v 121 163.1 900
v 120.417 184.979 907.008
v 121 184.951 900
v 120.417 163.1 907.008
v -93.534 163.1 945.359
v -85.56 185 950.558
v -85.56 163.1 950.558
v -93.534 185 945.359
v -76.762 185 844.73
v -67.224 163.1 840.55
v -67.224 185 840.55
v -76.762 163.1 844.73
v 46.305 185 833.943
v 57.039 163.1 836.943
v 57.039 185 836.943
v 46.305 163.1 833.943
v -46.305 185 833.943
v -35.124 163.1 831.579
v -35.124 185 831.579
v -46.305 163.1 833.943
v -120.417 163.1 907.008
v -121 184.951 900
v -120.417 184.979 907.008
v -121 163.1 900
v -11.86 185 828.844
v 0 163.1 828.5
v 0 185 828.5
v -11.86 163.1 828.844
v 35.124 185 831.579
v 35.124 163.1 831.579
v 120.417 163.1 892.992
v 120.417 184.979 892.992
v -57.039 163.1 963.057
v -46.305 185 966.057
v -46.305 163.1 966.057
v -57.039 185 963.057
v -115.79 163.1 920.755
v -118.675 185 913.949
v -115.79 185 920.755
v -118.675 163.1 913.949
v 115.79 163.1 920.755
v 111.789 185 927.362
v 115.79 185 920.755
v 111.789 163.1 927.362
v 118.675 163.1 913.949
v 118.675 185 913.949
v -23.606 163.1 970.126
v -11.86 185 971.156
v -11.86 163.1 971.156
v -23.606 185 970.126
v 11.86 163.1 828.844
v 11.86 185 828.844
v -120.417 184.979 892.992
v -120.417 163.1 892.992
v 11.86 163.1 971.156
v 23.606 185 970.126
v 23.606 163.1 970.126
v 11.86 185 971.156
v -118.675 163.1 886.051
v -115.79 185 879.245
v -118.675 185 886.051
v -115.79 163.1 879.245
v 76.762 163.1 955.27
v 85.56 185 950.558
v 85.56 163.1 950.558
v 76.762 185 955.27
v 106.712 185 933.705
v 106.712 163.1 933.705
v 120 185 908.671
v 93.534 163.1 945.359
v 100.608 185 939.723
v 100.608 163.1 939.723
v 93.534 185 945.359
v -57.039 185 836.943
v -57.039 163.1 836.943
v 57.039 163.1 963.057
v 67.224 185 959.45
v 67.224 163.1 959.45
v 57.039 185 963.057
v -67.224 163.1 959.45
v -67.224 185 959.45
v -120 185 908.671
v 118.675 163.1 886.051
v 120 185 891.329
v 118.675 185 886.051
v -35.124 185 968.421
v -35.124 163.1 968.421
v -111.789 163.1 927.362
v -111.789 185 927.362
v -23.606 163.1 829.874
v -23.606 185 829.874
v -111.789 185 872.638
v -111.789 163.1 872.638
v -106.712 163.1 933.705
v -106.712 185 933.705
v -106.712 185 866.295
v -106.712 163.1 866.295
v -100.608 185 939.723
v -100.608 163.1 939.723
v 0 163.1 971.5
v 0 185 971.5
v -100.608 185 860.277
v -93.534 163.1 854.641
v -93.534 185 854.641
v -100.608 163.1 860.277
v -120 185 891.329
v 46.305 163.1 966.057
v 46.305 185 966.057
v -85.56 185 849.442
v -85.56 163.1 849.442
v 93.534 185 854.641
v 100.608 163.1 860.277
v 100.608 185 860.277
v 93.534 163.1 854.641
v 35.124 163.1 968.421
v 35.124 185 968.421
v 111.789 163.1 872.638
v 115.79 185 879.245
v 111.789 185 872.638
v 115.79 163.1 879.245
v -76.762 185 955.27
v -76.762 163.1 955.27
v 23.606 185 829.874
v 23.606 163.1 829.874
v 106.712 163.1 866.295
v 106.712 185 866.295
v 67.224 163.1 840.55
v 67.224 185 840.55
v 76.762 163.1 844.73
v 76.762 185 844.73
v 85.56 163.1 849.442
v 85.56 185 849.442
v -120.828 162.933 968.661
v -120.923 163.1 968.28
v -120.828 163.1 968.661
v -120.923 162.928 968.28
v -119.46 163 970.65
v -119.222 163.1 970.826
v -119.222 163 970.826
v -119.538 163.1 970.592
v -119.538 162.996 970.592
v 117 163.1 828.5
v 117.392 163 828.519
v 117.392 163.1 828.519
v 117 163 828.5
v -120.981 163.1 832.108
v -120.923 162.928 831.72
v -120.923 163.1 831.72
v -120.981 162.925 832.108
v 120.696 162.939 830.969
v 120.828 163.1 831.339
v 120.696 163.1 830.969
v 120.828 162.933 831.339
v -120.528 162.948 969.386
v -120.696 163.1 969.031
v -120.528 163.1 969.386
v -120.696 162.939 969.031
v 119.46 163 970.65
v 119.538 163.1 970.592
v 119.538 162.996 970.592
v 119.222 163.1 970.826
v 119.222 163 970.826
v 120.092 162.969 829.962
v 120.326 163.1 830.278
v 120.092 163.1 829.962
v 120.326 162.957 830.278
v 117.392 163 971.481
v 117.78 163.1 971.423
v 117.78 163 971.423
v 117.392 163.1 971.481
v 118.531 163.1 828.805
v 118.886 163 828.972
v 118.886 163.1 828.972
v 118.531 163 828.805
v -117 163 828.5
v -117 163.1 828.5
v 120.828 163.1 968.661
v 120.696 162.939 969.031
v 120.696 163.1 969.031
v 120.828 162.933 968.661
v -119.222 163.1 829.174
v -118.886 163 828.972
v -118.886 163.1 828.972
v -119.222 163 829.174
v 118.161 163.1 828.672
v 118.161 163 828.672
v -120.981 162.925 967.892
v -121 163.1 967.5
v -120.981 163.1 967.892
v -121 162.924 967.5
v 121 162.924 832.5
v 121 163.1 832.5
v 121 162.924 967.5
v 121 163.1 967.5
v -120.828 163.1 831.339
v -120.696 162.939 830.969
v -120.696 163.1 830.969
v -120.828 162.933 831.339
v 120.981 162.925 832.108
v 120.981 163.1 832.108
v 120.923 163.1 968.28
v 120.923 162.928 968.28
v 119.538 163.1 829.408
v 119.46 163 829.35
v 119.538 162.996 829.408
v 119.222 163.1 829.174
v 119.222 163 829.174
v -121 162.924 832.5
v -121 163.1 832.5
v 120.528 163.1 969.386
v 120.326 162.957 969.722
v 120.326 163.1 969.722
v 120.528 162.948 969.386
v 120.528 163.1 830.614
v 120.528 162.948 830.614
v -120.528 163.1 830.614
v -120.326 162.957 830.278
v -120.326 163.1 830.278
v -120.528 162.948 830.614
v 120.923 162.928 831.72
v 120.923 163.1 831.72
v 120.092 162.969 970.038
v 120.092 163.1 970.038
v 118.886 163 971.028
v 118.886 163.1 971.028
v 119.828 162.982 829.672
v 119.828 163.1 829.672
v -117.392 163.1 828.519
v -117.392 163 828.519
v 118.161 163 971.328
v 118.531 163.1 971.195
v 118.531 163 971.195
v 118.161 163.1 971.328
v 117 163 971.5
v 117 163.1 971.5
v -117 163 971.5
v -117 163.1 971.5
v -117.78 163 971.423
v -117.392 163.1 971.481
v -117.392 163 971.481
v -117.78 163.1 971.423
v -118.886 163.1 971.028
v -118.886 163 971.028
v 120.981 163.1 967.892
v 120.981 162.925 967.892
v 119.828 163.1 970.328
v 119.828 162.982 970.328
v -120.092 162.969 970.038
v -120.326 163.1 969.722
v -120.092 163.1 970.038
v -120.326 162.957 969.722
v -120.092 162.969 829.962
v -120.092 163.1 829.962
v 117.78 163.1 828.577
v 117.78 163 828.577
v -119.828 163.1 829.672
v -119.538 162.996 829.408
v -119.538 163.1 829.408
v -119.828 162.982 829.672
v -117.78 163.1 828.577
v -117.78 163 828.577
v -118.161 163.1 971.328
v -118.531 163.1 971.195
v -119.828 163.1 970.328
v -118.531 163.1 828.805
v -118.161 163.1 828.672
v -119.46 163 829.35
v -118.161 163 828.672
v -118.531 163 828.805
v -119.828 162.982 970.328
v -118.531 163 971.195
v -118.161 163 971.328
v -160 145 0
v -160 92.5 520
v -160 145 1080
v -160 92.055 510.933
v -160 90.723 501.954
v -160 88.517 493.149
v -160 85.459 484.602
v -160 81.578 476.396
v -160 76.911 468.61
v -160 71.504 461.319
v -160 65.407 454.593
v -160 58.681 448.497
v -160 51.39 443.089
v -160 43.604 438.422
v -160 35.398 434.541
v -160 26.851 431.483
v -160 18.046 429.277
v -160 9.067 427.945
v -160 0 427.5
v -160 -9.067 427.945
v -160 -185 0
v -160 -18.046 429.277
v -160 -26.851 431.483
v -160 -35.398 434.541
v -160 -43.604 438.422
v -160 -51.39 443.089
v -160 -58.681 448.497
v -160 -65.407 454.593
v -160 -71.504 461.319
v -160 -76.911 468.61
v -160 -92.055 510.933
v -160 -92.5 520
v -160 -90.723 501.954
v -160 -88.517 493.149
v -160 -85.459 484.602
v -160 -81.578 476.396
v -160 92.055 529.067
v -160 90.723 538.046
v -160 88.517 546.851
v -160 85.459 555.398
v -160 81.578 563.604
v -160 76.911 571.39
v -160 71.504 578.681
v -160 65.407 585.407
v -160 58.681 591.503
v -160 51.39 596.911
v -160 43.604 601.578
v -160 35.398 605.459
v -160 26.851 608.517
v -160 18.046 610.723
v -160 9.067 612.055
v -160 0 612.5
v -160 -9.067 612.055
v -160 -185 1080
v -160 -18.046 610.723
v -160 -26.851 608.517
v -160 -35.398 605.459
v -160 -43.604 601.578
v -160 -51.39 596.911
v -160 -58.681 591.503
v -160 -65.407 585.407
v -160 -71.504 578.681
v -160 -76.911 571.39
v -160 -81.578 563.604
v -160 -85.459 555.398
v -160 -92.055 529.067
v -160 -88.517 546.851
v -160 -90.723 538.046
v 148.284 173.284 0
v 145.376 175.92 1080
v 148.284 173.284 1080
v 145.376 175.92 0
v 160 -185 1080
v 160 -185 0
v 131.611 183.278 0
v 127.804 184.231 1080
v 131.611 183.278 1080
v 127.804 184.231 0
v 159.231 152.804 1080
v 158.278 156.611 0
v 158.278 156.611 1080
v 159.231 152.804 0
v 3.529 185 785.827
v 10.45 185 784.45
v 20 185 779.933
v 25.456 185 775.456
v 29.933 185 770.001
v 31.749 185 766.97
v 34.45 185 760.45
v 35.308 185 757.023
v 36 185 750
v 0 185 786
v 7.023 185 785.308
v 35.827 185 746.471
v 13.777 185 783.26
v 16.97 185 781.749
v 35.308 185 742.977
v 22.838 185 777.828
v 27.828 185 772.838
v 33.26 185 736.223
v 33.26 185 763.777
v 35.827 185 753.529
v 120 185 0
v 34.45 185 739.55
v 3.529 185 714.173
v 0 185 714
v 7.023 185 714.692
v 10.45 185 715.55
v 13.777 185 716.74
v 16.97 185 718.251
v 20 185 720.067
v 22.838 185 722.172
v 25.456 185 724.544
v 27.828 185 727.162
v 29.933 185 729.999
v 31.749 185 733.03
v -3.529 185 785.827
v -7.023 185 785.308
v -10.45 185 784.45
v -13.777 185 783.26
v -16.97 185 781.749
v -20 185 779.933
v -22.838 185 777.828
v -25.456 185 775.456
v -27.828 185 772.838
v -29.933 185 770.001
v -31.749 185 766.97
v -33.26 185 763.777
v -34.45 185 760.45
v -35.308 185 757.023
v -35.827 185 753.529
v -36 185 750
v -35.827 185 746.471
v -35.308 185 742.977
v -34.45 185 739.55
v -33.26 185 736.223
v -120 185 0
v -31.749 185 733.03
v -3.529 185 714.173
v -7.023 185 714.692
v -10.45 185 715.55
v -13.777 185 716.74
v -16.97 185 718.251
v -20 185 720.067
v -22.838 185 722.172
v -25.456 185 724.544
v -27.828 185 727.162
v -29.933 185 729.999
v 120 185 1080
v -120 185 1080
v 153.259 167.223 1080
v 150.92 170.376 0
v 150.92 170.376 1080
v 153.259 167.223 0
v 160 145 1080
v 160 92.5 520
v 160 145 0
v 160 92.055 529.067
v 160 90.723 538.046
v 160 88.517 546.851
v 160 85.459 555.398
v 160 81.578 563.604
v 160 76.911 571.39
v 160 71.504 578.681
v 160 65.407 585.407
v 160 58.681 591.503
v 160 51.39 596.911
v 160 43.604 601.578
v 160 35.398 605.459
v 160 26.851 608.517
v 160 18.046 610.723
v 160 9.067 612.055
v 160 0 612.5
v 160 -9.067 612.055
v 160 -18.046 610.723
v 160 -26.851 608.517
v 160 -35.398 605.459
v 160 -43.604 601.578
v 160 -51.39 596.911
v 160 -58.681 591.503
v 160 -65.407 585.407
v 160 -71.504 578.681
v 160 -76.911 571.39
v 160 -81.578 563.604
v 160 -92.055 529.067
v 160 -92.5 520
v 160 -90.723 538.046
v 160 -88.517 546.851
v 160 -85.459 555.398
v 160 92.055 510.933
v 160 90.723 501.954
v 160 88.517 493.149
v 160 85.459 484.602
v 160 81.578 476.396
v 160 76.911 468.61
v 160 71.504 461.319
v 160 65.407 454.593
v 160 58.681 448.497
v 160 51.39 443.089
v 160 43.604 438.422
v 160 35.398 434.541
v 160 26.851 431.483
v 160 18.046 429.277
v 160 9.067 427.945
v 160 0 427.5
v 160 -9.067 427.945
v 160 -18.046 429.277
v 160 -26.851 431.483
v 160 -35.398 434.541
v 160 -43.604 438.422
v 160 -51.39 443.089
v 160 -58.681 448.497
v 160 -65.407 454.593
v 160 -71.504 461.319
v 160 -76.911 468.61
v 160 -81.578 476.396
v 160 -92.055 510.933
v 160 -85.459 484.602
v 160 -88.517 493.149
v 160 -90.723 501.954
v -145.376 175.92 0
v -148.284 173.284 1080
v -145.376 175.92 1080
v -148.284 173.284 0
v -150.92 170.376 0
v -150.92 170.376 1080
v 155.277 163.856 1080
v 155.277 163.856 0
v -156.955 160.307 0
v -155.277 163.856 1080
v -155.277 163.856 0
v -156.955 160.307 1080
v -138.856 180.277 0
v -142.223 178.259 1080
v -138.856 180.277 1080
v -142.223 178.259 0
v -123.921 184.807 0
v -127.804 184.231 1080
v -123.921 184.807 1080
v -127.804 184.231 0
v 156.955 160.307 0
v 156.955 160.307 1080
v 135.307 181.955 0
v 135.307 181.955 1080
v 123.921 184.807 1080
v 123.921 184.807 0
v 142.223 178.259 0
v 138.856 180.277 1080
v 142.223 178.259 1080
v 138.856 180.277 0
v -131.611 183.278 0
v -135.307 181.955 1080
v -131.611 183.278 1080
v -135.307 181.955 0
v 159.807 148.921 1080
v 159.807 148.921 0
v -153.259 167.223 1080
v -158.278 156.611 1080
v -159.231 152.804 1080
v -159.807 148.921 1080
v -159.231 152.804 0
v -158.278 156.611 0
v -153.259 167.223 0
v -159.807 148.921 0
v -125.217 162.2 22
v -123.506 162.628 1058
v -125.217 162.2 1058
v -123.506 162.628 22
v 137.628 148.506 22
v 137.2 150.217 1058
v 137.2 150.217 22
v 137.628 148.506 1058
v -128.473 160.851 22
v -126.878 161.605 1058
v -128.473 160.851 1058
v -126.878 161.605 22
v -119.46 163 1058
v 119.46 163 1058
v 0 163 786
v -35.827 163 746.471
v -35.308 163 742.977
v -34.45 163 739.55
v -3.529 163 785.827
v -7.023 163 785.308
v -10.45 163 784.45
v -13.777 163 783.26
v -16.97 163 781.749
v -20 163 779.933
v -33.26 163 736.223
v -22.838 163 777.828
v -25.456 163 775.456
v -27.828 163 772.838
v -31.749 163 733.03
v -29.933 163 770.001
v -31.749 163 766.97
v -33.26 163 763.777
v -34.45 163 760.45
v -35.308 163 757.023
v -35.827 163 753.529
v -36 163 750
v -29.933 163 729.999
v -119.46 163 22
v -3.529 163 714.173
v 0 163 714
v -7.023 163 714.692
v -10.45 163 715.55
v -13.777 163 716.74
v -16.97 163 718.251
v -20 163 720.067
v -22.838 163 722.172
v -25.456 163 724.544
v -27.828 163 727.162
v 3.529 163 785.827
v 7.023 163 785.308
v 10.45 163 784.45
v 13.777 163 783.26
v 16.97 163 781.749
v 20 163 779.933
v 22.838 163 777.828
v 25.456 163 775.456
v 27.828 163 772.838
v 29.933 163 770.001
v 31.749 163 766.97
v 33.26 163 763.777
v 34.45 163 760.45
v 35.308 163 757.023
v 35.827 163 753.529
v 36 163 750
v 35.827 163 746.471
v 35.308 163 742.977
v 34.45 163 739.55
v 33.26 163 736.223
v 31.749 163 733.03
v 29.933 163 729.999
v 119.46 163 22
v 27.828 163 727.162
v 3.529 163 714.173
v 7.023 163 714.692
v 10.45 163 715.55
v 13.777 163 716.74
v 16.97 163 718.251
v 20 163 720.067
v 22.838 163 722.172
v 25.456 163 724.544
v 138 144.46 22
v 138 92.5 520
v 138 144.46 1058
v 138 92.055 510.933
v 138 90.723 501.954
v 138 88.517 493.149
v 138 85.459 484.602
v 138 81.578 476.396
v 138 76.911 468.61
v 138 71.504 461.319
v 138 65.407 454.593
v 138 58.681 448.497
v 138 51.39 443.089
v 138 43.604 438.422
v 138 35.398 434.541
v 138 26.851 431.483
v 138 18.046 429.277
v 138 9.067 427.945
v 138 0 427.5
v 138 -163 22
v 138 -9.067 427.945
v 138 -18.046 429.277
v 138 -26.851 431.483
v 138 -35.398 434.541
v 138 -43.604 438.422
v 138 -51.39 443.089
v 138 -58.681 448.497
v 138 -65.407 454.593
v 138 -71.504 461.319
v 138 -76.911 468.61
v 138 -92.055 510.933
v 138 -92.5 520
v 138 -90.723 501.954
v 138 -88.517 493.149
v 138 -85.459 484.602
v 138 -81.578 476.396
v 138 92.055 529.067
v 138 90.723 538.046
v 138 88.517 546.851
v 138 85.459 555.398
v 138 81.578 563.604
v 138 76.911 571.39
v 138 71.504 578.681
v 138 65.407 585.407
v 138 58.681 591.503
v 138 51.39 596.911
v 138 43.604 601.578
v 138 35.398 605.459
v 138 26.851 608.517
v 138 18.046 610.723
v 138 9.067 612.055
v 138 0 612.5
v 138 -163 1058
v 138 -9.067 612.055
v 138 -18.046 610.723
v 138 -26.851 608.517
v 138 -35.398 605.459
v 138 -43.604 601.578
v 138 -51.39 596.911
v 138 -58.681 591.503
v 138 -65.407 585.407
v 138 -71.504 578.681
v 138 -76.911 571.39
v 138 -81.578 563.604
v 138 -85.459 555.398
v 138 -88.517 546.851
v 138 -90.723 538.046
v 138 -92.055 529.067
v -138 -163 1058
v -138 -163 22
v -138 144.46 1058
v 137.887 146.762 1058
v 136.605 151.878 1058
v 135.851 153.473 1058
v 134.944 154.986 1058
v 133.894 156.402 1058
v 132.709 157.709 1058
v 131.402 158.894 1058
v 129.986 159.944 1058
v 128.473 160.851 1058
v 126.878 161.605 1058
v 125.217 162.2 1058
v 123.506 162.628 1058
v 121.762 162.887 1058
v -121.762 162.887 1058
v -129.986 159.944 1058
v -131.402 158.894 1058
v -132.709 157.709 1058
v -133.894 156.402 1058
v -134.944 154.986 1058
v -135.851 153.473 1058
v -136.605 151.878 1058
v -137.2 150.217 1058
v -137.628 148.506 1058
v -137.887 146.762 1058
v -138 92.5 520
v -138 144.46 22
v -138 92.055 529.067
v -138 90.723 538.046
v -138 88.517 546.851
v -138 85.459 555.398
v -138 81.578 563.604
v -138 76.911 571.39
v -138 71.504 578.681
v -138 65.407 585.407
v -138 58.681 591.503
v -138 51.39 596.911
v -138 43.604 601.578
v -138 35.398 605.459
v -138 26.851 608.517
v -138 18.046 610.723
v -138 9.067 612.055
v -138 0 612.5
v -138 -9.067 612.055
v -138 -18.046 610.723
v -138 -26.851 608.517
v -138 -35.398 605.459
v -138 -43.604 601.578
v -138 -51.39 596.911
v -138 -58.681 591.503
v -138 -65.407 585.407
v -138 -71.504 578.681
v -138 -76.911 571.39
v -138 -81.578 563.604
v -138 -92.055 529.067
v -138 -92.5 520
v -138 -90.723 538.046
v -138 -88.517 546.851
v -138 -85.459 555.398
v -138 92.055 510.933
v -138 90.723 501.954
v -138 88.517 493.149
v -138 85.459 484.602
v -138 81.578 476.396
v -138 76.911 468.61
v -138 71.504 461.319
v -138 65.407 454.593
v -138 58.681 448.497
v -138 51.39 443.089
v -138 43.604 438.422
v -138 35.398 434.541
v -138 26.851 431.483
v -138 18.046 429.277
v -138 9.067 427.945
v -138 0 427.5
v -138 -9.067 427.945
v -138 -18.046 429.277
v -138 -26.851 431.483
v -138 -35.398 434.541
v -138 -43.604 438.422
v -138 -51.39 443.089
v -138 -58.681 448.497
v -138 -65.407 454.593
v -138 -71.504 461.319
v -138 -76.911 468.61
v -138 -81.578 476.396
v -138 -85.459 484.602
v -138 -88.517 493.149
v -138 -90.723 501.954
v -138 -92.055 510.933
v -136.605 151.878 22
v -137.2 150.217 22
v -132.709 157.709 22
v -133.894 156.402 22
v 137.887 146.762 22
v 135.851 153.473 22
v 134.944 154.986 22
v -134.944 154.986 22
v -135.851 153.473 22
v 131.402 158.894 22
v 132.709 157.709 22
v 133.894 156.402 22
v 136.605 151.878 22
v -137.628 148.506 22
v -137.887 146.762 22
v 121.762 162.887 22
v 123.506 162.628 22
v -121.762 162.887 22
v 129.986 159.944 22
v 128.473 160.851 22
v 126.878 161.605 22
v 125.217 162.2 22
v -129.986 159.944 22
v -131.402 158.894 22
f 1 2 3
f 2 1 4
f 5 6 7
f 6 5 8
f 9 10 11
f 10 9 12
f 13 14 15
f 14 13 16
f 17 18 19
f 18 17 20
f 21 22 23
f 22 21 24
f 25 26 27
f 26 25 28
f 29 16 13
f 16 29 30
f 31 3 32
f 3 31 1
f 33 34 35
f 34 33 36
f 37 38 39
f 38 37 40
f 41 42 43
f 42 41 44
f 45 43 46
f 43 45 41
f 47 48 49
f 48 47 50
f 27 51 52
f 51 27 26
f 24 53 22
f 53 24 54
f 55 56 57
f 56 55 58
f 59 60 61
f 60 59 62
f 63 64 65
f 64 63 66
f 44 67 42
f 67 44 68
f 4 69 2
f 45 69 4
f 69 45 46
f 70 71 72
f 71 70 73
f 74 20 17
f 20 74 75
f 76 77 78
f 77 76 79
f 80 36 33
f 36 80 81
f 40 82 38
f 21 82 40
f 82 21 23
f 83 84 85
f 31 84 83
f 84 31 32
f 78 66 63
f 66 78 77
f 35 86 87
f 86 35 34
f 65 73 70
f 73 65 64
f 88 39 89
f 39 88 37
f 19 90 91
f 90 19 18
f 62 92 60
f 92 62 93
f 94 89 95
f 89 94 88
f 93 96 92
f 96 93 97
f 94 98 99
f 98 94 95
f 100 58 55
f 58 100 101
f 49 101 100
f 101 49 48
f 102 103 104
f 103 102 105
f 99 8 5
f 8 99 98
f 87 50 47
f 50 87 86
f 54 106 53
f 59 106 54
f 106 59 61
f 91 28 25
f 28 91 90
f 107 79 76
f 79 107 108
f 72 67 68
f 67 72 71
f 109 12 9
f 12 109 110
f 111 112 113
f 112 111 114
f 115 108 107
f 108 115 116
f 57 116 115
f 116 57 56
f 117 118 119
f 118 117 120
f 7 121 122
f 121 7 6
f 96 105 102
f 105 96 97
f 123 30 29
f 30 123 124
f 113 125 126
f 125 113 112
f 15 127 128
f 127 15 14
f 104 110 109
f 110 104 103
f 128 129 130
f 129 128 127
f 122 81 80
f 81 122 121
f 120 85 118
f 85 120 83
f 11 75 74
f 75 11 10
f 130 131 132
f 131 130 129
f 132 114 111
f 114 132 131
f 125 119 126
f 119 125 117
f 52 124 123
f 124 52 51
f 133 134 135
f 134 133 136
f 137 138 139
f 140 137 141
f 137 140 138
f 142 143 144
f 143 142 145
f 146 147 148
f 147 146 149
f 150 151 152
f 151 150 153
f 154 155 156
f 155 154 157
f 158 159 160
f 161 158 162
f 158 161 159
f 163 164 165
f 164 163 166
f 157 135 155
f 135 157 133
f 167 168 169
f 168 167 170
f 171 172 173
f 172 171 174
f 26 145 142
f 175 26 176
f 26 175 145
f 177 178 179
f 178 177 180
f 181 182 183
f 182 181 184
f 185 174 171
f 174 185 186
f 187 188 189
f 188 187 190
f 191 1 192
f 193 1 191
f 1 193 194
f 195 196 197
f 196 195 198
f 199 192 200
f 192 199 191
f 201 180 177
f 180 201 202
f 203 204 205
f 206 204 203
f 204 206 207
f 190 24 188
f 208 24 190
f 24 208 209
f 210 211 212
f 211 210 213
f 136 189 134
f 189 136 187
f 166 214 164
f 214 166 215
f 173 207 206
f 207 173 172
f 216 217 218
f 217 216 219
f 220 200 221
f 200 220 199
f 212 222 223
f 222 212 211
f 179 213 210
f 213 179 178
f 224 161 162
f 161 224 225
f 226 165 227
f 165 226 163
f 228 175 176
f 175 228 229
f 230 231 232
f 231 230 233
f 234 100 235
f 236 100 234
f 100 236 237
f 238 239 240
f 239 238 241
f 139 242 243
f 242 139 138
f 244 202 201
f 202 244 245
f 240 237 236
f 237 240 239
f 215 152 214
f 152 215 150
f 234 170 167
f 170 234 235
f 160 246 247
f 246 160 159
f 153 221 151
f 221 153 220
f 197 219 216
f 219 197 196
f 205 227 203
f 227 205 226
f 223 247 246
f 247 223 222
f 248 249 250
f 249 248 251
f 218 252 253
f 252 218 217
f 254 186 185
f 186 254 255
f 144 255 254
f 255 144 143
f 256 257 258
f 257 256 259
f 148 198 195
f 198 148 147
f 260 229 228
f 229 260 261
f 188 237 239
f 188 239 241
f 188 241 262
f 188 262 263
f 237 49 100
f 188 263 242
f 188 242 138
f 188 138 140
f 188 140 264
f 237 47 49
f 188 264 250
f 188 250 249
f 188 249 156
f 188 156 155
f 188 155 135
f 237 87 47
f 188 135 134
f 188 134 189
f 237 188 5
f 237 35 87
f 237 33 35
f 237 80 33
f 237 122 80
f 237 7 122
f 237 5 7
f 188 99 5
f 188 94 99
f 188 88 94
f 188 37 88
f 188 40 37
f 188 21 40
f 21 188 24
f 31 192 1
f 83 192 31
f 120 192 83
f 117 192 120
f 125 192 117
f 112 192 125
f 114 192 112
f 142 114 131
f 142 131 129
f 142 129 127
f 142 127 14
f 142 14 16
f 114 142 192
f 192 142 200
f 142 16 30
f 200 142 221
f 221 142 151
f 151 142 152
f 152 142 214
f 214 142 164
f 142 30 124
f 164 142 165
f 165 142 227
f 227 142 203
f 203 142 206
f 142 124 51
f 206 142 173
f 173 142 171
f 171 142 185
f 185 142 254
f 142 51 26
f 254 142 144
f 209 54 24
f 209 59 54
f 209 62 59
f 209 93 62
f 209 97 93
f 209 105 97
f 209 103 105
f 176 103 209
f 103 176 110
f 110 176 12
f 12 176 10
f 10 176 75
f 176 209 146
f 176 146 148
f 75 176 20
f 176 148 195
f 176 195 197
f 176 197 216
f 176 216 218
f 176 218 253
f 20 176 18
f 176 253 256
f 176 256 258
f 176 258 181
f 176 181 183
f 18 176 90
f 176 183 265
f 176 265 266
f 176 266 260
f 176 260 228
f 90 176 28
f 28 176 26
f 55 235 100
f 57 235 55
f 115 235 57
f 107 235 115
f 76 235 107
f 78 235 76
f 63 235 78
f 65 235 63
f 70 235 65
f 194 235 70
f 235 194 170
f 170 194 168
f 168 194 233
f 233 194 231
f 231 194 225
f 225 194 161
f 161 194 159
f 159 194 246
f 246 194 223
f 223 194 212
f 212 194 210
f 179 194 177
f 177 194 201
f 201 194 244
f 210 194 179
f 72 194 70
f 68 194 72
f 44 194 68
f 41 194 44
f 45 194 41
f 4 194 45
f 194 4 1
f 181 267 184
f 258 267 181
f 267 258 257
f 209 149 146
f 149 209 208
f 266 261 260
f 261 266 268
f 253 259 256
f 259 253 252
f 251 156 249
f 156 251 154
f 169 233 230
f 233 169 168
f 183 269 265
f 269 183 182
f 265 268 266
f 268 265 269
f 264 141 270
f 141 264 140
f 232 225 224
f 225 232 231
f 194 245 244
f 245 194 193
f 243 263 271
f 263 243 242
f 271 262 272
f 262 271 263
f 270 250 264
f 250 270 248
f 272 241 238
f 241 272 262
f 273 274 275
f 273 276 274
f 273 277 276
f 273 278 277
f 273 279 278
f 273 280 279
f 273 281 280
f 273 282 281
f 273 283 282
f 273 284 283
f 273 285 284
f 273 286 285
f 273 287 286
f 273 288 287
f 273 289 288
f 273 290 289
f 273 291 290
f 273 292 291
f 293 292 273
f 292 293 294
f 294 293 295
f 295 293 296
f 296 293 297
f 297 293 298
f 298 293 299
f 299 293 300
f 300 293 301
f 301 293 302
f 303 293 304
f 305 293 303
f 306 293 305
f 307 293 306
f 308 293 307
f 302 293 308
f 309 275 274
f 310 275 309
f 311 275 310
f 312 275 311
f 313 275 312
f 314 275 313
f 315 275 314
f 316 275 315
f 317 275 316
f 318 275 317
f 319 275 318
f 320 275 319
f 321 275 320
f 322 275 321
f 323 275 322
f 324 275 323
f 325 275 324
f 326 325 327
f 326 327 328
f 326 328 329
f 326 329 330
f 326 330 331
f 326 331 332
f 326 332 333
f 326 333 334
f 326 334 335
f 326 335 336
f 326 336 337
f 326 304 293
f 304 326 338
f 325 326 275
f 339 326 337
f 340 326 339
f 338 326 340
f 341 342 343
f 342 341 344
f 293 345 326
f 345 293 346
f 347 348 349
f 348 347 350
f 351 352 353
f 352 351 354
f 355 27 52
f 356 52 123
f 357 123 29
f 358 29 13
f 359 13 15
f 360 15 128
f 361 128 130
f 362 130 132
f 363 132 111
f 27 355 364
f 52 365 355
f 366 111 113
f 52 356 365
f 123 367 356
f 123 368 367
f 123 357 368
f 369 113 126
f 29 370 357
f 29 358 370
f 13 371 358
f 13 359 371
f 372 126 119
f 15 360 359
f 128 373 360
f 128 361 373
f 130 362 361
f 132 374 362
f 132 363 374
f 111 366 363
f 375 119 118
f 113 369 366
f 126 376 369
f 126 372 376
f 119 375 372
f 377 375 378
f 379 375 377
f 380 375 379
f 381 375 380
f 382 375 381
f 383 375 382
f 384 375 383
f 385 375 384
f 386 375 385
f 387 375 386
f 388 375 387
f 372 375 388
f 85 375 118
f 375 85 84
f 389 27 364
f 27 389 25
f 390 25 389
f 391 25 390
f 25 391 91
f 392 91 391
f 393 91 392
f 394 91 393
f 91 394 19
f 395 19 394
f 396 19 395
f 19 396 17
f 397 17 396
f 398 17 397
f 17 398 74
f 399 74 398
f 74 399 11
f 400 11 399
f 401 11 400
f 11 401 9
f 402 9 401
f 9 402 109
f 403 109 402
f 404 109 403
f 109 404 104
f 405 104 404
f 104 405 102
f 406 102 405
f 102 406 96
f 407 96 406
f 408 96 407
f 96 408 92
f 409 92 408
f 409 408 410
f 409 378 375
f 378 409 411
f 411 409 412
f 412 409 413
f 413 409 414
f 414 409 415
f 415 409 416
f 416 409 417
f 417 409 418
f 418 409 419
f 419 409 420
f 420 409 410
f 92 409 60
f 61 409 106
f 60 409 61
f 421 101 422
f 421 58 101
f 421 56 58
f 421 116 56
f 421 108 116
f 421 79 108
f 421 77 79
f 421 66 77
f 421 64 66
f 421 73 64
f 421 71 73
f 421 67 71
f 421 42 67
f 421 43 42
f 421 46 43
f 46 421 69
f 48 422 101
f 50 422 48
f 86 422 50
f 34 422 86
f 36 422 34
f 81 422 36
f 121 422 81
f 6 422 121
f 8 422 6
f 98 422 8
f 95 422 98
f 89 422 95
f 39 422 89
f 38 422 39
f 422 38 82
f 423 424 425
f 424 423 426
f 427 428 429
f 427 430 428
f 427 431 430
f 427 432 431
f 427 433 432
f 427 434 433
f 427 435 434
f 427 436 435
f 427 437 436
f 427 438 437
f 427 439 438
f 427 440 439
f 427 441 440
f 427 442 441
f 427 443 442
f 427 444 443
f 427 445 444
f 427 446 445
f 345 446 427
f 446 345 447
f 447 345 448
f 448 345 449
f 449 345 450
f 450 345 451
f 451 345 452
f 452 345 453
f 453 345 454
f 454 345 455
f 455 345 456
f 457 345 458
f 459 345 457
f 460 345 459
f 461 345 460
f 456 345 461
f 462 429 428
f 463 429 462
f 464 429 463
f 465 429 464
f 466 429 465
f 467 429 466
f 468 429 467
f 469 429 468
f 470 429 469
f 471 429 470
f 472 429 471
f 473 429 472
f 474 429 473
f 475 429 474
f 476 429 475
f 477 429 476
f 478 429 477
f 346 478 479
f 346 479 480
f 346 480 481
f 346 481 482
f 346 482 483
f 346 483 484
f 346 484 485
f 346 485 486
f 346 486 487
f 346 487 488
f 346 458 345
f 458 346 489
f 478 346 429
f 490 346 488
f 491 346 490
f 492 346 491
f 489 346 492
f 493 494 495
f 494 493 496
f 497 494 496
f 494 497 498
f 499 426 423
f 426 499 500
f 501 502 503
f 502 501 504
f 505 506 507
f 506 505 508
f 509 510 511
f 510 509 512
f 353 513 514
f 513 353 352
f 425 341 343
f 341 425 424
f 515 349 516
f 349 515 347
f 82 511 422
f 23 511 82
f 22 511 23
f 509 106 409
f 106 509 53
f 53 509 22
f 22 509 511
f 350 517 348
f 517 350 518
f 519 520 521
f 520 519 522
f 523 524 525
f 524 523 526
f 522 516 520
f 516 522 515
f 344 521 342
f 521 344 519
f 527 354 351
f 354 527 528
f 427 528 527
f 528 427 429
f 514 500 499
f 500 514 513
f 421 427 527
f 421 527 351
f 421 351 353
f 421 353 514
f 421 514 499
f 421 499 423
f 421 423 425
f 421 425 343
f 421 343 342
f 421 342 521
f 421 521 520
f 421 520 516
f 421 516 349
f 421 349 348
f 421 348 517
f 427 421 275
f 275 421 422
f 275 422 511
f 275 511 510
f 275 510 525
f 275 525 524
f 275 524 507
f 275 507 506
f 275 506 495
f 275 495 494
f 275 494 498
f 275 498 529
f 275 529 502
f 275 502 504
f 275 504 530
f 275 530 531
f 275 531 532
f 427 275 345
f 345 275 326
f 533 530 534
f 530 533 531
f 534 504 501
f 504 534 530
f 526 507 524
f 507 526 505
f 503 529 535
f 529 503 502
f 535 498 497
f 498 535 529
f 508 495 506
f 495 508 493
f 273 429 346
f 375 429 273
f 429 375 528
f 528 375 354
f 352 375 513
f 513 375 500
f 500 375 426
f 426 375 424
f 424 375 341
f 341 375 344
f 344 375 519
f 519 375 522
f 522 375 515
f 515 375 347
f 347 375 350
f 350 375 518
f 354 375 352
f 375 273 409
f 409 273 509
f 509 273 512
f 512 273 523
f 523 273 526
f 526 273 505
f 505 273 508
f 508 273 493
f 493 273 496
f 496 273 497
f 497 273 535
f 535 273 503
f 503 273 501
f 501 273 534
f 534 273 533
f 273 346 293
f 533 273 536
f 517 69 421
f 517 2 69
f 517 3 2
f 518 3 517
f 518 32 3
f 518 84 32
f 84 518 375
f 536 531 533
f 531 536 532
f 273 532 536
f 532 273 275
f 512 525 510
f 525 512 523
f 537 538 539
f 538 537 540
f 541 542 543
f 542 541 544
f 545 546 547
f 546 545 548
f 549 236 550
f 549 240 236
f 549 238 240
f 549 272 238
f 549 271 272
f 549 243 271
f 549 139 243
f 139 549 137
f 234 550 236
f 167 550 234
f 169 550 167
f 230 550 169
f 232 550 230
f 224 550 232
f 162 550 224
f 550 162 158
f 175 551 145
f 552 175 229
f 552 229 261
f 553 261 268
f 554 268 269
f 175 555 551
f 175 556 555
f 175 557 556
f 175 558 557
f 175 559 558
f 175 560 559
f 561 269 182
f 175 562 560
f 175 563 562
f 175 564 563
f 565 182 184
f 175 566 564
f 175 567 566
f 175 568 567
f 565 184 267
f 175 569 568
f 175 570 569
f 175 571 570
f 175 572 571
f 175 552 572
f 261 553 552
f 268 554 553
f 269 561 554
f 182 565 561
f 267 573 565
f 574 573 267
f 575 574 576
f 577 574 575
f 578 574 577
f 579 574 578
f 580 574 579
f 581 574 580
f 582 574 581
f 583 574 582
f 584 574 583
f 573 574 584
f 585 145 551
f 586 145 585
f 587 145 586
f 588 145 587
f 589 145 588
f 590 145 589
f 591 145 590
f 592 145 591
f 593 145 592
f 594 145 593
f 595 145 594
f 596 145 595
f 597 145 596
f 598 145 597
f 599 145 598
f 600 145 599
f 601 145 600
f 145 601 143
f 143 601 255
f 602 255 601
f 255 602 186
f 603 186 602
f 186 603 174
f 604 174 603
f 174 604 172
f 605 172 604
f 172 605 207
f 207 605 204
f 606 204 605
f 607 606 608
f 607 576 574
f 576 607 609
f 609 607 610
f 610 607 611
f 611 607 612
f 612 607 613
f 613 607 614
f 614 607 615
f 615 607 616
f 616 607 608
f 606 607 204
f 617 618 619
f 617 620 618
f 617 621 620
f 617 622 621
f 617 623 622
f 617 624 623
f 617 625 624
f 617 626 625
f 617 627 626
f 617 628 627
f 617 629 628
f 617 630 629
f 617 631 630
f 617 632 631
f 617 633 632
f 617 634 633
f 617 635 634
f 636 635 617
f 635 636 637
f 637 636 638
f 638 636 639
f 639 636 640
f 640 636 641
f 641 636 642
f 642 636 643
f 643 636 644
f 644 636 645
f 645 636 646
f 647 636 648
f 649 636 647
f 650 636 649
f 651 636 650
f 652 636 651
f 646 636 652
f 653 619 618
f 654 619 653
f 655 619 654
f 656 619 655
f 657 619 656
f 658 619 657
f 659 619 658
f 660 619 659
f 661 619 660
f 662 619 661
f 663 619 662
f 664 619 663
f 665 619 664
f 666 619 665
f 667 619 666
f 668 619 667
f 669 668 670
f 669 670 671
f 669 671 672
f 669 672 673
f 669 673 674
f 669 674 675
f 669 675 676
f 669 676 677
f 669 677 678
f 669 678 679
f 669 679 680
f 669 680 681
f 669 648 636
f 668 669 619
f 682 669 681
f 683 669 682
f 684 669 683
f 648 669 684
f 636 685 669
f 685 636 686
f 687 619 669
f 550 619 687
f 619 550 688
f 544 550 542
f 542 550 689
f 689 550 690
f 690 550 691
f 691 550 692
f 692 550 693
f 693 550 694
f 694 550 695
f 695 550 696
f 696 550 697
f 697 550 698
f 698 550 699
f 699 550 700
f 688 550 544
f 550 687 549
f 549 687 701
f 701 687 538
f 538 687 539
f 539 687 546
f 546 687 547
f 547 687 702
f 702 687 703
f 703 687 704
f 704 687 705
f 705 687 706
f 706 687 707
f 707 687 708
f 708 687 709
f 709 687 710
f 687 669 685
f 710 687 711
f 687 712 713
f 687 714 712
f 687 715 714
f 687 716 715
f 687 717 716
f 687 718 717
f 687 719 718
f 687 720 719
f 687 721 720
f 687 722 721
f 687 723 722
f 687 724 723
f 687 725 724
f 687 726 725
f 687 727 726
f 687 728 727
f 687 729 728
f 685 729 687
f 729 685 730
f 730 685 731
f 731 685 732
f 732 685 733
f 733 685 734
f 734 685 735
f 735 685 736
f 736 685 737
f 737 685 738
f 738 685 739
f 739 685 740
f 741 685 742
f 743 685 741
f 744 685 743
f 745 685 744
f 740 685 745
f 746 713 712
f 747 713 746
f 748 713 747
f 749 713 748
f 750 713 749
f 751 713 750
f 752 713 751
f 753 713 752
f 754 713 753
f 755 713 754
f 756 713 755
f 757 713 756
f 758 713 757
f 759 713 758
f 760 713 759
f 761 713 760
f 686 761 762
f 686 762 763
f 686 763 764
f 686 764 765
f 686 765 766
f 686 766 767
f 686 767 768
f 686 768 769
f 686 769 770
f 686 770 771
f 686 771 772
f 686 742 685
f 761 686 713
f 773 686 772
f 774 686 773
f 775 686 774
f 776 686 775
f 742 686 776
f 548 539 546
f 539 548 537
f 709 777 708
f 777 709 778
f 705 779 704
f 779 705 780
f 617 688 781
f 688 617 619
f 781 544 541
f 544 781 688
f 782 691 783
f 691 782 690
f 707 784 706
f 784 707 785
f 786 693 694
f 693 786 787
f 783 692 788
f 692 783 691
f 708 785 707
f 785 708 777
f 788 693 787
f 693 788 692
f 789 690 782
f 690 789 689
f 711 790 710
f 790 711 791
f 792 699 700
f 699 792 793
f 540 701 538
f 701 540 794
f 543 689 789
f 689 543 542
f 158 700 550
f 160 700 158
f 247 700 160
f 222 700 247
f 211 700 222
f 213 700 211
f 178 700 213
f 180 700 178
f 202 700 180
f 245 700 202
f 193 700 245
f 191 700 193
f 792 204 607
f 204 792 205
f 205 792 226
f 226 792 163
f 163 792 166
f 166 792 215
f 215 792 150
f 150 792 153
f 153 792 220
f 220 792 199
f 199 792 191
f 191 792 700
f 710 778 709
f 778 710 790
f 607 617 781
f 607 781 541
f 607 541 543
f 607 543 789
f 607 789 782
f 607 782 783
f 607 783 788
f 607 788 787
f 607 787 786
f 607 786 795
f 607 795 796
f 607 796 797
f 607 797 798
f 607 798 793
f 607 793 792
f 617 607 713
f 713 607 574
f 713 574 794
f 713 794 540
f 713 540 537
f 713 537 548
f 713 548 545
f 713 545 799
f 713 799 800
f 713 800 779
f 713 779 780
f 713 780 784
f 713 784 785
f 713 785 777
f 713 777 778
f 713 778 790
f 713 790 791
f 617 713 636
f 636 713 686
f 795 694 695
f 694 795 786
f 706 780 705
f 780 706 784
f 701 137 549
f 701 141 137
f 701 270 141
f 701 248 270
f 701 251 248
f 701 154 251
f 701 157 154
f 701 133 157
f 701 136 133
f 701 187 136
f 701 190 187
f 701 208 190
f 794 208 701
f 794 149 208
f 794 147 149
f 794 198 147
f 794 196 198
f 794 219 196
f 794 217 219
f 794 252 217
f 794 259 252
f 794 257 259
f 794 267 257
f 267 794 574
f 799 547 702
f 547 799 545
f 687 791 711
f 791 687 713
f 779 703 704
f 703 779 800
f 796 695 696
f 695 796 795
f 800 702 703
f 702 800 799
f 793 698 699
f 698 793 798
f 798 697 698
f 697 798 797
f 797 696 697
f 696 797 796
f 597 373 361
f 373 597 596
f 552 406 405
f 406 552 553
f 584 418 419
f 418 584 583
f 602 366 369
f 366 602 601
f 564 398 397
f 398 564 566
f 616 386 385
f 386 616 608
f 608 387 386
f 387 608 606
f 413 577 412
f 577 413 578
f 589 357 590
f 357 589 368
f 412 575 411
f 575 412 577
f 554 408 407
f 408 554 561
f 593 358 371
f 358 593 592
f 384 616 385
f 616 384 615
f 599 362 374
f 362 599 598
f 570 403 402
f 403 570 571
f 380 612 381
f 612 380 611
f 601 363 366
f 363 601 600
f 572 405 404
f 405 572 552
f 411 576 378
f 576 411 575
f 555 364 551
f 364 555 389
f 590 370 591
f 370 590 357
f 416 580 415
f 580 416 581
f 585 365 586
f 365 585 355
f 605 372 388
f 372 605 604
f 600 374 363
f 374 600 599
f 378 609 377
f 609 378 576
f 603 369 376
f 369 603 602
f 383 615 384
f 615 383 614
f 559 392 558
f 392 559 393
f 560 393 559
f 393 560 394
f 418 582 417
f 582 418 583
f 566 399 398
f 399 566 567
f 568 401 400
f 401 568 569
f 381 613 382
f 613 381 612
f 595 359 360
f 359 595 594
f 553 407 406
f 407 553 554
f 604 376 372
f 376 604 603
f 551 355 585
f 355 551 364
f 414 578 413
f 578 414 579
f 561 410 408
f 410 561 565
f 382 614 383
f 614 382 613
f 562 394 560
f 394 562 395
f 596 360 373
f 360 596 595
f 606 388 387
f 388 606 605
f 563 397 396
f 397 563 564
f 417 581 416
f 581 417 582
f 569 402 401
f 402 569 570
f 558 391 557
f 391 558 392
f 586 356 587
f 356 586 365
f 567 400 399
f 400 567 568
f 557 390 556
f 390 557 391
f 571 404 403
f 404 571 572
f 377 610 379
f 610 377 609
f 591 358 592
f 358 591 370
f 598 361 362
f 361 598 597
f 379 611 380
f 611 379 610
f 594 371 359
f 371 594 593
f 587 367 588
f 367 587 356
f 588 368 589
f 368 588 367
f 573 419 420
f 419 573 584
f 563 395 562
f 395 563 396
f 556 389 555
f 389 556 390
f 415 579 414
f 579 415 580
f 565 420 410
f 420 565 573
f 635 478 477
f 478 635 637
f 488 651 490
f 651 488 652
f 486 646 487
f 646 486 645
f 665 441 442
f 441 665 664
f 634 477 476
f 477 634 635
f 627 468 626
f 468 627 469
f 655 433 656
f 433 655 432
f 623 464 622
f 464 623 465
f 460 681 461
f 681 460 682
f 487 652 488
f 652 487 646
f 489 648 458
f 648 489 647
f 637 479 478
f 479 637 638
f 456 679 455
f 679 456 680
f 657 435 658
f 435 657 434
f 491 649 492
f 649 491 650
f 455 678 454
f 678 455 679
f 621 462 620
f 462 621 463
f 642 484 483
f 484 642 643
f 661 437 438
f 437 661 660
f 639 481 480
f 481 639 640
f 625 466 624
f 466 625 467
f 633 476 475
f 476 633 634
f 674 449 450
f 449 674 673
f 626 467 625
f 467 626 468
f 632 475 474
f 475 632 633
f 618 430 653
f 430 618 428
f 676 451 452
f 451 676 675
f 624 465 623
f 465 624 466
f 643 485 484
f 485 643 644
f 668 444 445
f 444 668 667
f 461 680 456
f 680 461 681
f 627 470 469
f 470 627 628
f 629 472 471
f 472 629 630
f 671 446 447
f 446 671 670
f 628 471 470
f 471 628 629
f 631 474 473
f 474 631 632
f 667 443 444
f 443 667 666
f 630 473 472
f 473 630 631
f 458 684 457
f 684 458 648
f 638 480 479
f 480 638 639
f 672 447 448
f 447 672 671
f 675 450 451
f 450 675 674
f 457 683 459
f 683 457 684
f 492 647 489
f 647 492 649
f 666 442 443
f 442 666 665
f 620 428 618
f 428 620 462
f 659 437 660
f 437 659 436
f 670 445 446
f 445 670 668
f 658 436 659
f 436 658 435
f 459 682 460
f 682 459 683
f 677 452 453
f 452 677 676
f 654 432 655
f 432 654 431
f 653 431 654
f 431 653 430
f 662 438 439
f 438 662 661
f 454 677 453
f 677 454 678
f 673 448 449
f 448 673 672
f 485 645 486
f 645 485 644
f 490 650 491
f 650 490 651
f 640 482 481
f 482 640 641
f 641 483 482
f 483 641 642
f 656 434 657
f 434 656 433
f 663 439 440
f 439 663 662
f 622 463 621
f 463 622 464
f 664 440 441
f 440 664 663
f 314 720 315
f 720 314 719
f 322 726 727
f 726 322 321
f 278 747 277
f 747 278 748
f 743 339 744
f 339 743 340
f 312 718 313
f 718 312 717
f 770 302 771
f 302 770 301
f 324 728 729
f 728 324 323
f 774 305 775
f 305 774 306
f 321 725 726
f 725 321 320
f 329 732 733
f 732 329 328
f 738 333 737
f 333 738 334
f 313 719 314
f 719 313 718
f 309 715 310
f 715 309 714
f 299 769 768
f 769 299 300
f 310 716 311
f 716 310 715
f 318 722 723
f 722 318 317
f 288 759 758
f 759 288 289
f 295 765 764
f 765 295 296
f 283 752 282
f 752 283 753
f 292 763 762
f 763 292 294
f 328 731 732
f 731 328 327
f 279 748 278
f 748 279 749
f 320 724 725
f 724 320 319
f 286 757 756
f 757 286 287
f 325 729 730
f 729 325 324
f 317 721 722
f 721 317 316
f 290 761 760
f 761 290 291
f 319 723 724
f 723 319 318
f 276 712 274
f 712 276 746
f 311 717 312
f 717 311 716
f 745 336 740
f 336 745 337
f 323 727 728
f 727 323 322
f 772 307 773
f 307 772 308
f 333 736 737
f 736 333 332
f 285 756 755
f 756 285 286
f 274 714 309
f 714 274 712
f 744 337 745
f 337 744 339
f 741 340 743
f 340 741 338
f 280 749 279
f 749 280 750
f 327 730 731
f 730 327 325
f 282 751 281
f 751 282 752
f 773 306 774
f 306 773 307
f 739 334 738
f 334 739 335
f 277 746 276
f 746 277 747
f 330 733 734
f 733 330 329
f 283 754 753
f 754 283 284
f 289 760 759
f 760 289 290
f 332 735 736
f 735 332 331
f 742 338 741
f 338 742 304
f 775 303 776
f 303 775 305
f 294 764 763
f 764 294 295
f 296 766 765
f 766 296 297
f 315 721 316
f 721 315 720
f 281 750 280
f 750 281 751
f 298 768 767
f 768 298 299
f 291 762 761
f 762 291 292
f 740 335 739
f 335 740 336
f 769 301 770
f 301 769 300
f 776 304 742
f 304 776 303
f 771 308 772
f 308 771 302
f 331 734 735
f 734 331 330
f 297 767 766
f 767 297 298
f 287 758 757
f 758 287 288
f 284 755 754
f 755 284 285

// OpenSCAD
// =====================================================================
// Mk2 Reference Loudspeaker - cabinet (parametric, simulation-stage)
// =====================================================================
//
// v6b enclosure: 300 x 370 x 1080 mm, 22 mm birch ply, R50 front vertical
// roundovers, side-mounted push-push woofers opposed at the same height, sealed
// midrange chamber, WG212 + 15W on the front baffle at ~150 mm c-c.
//
// This is a DESIGN-CANDIDATE model for visualisation and dimension checking,
// NOT a cut list. Driver cut-outs and the mid-chamber volume are estimates and
// must be confirmed against the real driver flanges and a volume calculation
// before any panel is cut. See docs/07_cabinet_development.md and
// docs/09_volume_calculations.md.
//
// Axes: X = width, Y = depth (front baffle at +Y), Z = height (0 at floor).
// Units: millimetres.   Render: `openscad -o cabinet.stl cabinet.scad`
// ---------------------------------------------------------------------

// Pull in the waveguide model for the optional assembly view (only its
// modules are imported; nothing renders unless show_waveguide = true).
use <waveguide.scad>

// ---- External shell -------------------------------------------------
W      = 320;    // width  [mm]
D      = 370;    // depth  [mm]
H      = 1080;   // height [mm]
wall   = 22;     // panel thickness [mm]
round_r = 40;    // R50 front vertical roundovers [mm]

// ---- Driver placement (estimates) -----------------------------------
woofer_z      = 520;   // opposed push-push woofer centre height [mm]
woofer_cut_d  = 185;   // GRS 8SW-4HE cut-out diameter [mm]

tw_z          = 900;   // WG212/tweeter acoustic centre height [mm]
cc            = 150;   // mid/tweeter centre-to-centre [mm] (DD-011 realistic)
mid_z         = tw_z - cc;
// WG212 opening matches cad/mk2_waveguide_os.scad (asymmetric OS waveguide)
// WG212 mouth and flange dimensions — derived from mk2_waveguide_os.scad via
// exported functions so they stay in sync automatically when the waveguide
// profile changes (throat_d, angles, etc.).  Do NOT hardcode these here.
wg_mouth_w    = wg_flange_w_fn();    // WG212 mouth width  (horizontal) [mm]
wg_mouth_h    = wg_flange_h_fn();    // WG212 mouth height (vertical)   [mm]
wg_flange_w   = wg_flange_w_fn();     // WG212 flange recess width  [mm]
wg_flange_h   = wg_flange_h_fn();     // WG212 flange recess height [mm]
wg_flange_r   = wg_flange_r_fn();     // flange corner radius [mm]
wg_flange_t   = wg_flange_t_fn();     // flange thickness / recess depth [mm]
mid_cut_d     = 72;    // 15W/4434G00 cut-out diameter [mm] - from datasheet drawing (chassis/basket Ø72 mm)

// ---- Internals ------------------------------------------------------
midchamber_h  = 175;   // internal height of the sealed mid chamber [mm]
midchamber_d  = 282;   // internal depth of the mid chamber [mm] (<= inner depth)
show_internals = false;  // true: cutaway with mid chamber + braces (CI overrides per view)
show_waveguide = false; // true: seat the WG212 model into the baffle (CI overrides per view)
show_drivers = false;   // true: show placeholder driver disks for scale reference

// WG212 assembly placement. All positioning derives from mk2_waveguide_os.scad
// exports so the cabinet tracks the waveguide automatically - no hard-coded
// number to drift out of sync if you change Lr, flange_thick, or protrusion.
//
// wg_front_z()  = physical front face of the waveguide (z = D_tot_ext - flange_thick
//                 in the current design: 85 mm).  The flange front face sits at this
//                 z and is what we want flush with the baffle back face.
// wg_back_z()   = rear of the back plate (z = -tw_ring_thick = -8 mm).  Useful for
//                 keeping the assembly clear of the cabinet back wall.
// wg_protrusion_fn() = protrusion past the flange front (0 by default - the tube
//                 ends at the flange front, baffle hole is the aperture).
//
// The waveguide's throat (z=0) is positioned so the flange front face aligns
// with the baffle back face:  Y(z=0) = (D/2 - wall) - wg_front_z().
// With current numbers:  Y(z=0) = (185-22) - 85 = 78 ;  Y(z=85) = 163 (baffle back).
//
// wg_recess = small overlap so the flange and baffle material are not coplanar
//             (OpenSCAD renders coplanar joins as non-manifold smears).  0.3 mm
//             is safe and well below any acoustic concern.
wg_front       = wg_front_z();
wg_back        = wg_back_z();
wg_protrusion  = wg_protrusion_fn();
wg_recess      = wall+0.01;   // small overlap into the baffle material [mm] for clean CSG //Editied since it needs to blend into the front baffel and not the back of the baffel.

eps = 0.1;             // generic cut overshoot for clean booleans [mm]
fn = 64;
// ---------------------------------------------------------------------

// 2D horizontal cross-section: rounded front (+Y) corners, square rear corners
module profile2d(w, d, r) {
    hull() {
        translate([-(w/2 - r),  (d/2 - r)]) circle(r, $fn = fn);   // front-left
        translate([ (w/2 - r),  (d/2 - r)]) circle(r, $fn = fn);   // front-right
        translate([-(w/2 - 0.5), -(d/2 - 0.5)]) square(1, center = true); // rear-left
        translate([ (w/2 - 0.5), -(d/2 - 0.5)]) square(1, center = true); // rear-right
    }
}

module outer()  linear_extrude(H) profile2d(W, D, round_r);
module cavity() translate([0,0,wall])
                    linear_extrude(H - 2*wall) offset(-wall) profile2d(W, D, round_r);

// driver cut-out: pierce the full baffle thickness with eps overshoot both faces
module baffle_cut(z, dia) {
    translate([0, D/2 - wall - eps, z]) rotate([-90,0,0])
        cylinder(h = wall + 2*eps, r = dia/2, $fn = fn);
}
module rrect2d(w, h, r)
    hull() for (sx=[-1,1]) for (sy=[-1,1])
        translate([sx*(w/2 - r), sy*(h/2 - r)]) circle(r, $fn = fn);

// WG212 opening: elliptical mouth through the baffle + flange recess on the
// INSIDE of the baffle (matches the asymmetric OS waveguide in
// mk2_waveguide_os.scad, which mounts behind the baffle via the flange).
module baffle_wg(z) {
    // elliptical mouth pierces the baffle (eps overshoot both faces)
    translate([0, D/2 - wall - eps, z]) rotate([-90,0,0])
        linear_extrude(wall + 2*eps) scale([wg_mouth_w/2, wg_mouth_h/2]) circle(1, $fn = fn);
    // flange recess: pocket of depth wg_flange_t on the INNER baffle face so
    // the waveguide flange (5 mm thick, sits at z = wg_front - wg_flange_t ..
    // wg_front in the waveguide frame) lands flush against the baffle back face.
    // Open toward the cabinet interior (Y = D/2 - wall - wg_flange_t .. D/2 - wall).
    translate([0, D/2 - wall - wg_flange_t, z]) rotate([-90,0,0])
        linear_extrude(wg_flange_t + eps) rrect2d(wg_flange_w, wg_flange_h, wg_flange_r);
}
// woofer cut-out through a side panel (+/-X)
module side_cut(sign, z, dia) {
    translate([sign*(W/2 - wall - eps), 0, z]) rotate([0, sign*90, 0])
        cylinder(h = wall + 2*eps, r = dia/2, $fn = fn);
}

module enclosure() {
    difference() {
        outer();
        cavity();
        // front baffle: waveguide + midrange
        baffle_wg(tw_z);
        baffle_cut(mid_z, mid_cut_d);
        // sides: opposed push-push woofers at the same height
        side_cut(+1, woofer_z, woofer_cut_d);
        side_cut(-1, woofer_z, woofer_cut_d);
    }
}

// ---- Internal structure (representative) ----------------------------
module mid_chamber() {
    // sealed box behind the midrange, sitting just under the top
    z0 = mid_z - midchamber_h/2;
    color("LightSteelBlue", 0.65)
    translate([0, D/2 - wall - midchamber_d, z0])
        difference() {
            translate([-(mid_cut_d/2 + 18), 0, 0])
                cube([mid_cut_d + 36, midchamber_d, midchamber_h]);
            // open the front toward the baffle (where the mid mounts)
            translate([-mid_cut_d/2, -2, midchamber_h/2 - mid_cut_d/2])
                cube([mid_cut_d, wall + 4, mid_cut_d]);
        }
}

module brace_window(z) {
    // window brace ring tying the side panels around the woofer line
    color("Khaki", 0.8)
    translate([0, 0, z - 18]) linear_extrude(36)
        difference() { offset(-wall - 4) profile2d(W, D, round_r);
                       offset(-wall - 70) profile2d(W, D, round_r); }
}

module shelf_brace(z) {
    // bass/mid divider shelf
    color("Tan", 0.85)
    translate([0,0,z]) linear_extrude(wall) offset(-wall) profile2d(W, D, round_r);
}

module coupling_block() {
    // rigid block bonded across the ~22 mm gap between the opposed magnets
    color("IndianRed", 0.9)
    translate([0, 0, woofer_z]) rotate([0,90,0])
        cylinder(h = 26, r = 28, center = true, $fn = 48);
}

// ---- WG212 seated in the baffle (optional assembly) -----------------
module wg_in_baffle() {
      // Waveguide frame: throat at z=0, flange front face at z=wg_front, opening
      // toward +z.  rotate([-90,0,0]) maps the waveguide axis (+z) to the cabinet
      // baffle normal (+Y).
      //
      // Position so the FLANGE FRONT FACE aligns with the BAFFLE BACK FACE,
      // pushed in by wg_recess for a clean coplanar join (no coincident faces).
      // Y(z=0) = baffle_back_y - wg_front + wg_recess
      //       = (D/2 - wall) - wg_front + wg_recess
      // Y(z=wg_front) = baffle_back_y + wg_recess
      //
      // For protrusion > 0 the tube extends past the flange through the baffle
      // cutout; for protrusion = 0 (current default) the tube ends at the flange
      // and the baffle hole is the radiating aperture.
      color("Gainsboro")
      translate([0, D/2 - wall - wg_front + wg_recess, tw_z]) rotate([-90,0,0])
          waveguide();
  }

  // ---- Placeholder driver disks for scale visualization ----------------
  // Simple colored disks representing the physical driver sizes for render scale.
  // These are NOT accurate driver models - just visual references for cabinet renders.
  module driver_woofer_placeholder(sign) {
      // GRS 8SW-4HE: ~200mm frame, ~120mm magnet depth
      color("DarkSlateGray", 0.85)
      translate([sign*(W/2 + 10), 0, woofer_z]) rotate([0, sign*90, 0])
          cylinder(h = 25, r = 100, $fn = 64);
  }
  module driver_mid_placeholder() {
      // 15W/4434G00: ~104mm faceplate
      color("DimGray", 0.85)
      translate([0, D/2 + 10, mid_z]) rotate([-90, 0, 0])
          cylinder(h = 20, r = 52, $fn = 48);
  }
  module driver_tweeter_placeholder() {
      // H2606/920000: ~25mm dome + small faceplate
      color("Silver", 0.9)
      translate([0, D/2 - wall - wg_front + wg_recess + 5, tw_z]) rotate([-90, 0, 0])
          cylinder(h = 15, r = 35, $fn = 32);
  }

if (show_internals) {
      difference() {
          union() {
              enclosure();
              mid_chamber();
              brace_window(woofer_z);
              shelf_brace(mid_z - midchamber_h/2 - 30);
              coupling_block();
              if (show_waveguide) wg_in_baffle();
              if (show_drivers) {
                  driver_woofer_placeholder(+1);
                  driver_woofer_placeholder(-1);
                  driver_mid_placeholder();
                  if (show_waveguide) driver_tweeter_placeholder();
              }
          }
          // cutaway: remove the +X half for an internal view
          translate([0, -D, -10]) cube([W, 2*D, H + 20]);
      }
  } else {
      enclosure();
      if (show_waveguide) wg_in_baffle();
      if (show_drivers) {
          driver_woofer_placeholder(+1);
          driver_woofer_placeholder(-1);
          driver_mid_placeholder();
          if (show_waveguide) driver_tweeter_placeholder();
      }
  }
